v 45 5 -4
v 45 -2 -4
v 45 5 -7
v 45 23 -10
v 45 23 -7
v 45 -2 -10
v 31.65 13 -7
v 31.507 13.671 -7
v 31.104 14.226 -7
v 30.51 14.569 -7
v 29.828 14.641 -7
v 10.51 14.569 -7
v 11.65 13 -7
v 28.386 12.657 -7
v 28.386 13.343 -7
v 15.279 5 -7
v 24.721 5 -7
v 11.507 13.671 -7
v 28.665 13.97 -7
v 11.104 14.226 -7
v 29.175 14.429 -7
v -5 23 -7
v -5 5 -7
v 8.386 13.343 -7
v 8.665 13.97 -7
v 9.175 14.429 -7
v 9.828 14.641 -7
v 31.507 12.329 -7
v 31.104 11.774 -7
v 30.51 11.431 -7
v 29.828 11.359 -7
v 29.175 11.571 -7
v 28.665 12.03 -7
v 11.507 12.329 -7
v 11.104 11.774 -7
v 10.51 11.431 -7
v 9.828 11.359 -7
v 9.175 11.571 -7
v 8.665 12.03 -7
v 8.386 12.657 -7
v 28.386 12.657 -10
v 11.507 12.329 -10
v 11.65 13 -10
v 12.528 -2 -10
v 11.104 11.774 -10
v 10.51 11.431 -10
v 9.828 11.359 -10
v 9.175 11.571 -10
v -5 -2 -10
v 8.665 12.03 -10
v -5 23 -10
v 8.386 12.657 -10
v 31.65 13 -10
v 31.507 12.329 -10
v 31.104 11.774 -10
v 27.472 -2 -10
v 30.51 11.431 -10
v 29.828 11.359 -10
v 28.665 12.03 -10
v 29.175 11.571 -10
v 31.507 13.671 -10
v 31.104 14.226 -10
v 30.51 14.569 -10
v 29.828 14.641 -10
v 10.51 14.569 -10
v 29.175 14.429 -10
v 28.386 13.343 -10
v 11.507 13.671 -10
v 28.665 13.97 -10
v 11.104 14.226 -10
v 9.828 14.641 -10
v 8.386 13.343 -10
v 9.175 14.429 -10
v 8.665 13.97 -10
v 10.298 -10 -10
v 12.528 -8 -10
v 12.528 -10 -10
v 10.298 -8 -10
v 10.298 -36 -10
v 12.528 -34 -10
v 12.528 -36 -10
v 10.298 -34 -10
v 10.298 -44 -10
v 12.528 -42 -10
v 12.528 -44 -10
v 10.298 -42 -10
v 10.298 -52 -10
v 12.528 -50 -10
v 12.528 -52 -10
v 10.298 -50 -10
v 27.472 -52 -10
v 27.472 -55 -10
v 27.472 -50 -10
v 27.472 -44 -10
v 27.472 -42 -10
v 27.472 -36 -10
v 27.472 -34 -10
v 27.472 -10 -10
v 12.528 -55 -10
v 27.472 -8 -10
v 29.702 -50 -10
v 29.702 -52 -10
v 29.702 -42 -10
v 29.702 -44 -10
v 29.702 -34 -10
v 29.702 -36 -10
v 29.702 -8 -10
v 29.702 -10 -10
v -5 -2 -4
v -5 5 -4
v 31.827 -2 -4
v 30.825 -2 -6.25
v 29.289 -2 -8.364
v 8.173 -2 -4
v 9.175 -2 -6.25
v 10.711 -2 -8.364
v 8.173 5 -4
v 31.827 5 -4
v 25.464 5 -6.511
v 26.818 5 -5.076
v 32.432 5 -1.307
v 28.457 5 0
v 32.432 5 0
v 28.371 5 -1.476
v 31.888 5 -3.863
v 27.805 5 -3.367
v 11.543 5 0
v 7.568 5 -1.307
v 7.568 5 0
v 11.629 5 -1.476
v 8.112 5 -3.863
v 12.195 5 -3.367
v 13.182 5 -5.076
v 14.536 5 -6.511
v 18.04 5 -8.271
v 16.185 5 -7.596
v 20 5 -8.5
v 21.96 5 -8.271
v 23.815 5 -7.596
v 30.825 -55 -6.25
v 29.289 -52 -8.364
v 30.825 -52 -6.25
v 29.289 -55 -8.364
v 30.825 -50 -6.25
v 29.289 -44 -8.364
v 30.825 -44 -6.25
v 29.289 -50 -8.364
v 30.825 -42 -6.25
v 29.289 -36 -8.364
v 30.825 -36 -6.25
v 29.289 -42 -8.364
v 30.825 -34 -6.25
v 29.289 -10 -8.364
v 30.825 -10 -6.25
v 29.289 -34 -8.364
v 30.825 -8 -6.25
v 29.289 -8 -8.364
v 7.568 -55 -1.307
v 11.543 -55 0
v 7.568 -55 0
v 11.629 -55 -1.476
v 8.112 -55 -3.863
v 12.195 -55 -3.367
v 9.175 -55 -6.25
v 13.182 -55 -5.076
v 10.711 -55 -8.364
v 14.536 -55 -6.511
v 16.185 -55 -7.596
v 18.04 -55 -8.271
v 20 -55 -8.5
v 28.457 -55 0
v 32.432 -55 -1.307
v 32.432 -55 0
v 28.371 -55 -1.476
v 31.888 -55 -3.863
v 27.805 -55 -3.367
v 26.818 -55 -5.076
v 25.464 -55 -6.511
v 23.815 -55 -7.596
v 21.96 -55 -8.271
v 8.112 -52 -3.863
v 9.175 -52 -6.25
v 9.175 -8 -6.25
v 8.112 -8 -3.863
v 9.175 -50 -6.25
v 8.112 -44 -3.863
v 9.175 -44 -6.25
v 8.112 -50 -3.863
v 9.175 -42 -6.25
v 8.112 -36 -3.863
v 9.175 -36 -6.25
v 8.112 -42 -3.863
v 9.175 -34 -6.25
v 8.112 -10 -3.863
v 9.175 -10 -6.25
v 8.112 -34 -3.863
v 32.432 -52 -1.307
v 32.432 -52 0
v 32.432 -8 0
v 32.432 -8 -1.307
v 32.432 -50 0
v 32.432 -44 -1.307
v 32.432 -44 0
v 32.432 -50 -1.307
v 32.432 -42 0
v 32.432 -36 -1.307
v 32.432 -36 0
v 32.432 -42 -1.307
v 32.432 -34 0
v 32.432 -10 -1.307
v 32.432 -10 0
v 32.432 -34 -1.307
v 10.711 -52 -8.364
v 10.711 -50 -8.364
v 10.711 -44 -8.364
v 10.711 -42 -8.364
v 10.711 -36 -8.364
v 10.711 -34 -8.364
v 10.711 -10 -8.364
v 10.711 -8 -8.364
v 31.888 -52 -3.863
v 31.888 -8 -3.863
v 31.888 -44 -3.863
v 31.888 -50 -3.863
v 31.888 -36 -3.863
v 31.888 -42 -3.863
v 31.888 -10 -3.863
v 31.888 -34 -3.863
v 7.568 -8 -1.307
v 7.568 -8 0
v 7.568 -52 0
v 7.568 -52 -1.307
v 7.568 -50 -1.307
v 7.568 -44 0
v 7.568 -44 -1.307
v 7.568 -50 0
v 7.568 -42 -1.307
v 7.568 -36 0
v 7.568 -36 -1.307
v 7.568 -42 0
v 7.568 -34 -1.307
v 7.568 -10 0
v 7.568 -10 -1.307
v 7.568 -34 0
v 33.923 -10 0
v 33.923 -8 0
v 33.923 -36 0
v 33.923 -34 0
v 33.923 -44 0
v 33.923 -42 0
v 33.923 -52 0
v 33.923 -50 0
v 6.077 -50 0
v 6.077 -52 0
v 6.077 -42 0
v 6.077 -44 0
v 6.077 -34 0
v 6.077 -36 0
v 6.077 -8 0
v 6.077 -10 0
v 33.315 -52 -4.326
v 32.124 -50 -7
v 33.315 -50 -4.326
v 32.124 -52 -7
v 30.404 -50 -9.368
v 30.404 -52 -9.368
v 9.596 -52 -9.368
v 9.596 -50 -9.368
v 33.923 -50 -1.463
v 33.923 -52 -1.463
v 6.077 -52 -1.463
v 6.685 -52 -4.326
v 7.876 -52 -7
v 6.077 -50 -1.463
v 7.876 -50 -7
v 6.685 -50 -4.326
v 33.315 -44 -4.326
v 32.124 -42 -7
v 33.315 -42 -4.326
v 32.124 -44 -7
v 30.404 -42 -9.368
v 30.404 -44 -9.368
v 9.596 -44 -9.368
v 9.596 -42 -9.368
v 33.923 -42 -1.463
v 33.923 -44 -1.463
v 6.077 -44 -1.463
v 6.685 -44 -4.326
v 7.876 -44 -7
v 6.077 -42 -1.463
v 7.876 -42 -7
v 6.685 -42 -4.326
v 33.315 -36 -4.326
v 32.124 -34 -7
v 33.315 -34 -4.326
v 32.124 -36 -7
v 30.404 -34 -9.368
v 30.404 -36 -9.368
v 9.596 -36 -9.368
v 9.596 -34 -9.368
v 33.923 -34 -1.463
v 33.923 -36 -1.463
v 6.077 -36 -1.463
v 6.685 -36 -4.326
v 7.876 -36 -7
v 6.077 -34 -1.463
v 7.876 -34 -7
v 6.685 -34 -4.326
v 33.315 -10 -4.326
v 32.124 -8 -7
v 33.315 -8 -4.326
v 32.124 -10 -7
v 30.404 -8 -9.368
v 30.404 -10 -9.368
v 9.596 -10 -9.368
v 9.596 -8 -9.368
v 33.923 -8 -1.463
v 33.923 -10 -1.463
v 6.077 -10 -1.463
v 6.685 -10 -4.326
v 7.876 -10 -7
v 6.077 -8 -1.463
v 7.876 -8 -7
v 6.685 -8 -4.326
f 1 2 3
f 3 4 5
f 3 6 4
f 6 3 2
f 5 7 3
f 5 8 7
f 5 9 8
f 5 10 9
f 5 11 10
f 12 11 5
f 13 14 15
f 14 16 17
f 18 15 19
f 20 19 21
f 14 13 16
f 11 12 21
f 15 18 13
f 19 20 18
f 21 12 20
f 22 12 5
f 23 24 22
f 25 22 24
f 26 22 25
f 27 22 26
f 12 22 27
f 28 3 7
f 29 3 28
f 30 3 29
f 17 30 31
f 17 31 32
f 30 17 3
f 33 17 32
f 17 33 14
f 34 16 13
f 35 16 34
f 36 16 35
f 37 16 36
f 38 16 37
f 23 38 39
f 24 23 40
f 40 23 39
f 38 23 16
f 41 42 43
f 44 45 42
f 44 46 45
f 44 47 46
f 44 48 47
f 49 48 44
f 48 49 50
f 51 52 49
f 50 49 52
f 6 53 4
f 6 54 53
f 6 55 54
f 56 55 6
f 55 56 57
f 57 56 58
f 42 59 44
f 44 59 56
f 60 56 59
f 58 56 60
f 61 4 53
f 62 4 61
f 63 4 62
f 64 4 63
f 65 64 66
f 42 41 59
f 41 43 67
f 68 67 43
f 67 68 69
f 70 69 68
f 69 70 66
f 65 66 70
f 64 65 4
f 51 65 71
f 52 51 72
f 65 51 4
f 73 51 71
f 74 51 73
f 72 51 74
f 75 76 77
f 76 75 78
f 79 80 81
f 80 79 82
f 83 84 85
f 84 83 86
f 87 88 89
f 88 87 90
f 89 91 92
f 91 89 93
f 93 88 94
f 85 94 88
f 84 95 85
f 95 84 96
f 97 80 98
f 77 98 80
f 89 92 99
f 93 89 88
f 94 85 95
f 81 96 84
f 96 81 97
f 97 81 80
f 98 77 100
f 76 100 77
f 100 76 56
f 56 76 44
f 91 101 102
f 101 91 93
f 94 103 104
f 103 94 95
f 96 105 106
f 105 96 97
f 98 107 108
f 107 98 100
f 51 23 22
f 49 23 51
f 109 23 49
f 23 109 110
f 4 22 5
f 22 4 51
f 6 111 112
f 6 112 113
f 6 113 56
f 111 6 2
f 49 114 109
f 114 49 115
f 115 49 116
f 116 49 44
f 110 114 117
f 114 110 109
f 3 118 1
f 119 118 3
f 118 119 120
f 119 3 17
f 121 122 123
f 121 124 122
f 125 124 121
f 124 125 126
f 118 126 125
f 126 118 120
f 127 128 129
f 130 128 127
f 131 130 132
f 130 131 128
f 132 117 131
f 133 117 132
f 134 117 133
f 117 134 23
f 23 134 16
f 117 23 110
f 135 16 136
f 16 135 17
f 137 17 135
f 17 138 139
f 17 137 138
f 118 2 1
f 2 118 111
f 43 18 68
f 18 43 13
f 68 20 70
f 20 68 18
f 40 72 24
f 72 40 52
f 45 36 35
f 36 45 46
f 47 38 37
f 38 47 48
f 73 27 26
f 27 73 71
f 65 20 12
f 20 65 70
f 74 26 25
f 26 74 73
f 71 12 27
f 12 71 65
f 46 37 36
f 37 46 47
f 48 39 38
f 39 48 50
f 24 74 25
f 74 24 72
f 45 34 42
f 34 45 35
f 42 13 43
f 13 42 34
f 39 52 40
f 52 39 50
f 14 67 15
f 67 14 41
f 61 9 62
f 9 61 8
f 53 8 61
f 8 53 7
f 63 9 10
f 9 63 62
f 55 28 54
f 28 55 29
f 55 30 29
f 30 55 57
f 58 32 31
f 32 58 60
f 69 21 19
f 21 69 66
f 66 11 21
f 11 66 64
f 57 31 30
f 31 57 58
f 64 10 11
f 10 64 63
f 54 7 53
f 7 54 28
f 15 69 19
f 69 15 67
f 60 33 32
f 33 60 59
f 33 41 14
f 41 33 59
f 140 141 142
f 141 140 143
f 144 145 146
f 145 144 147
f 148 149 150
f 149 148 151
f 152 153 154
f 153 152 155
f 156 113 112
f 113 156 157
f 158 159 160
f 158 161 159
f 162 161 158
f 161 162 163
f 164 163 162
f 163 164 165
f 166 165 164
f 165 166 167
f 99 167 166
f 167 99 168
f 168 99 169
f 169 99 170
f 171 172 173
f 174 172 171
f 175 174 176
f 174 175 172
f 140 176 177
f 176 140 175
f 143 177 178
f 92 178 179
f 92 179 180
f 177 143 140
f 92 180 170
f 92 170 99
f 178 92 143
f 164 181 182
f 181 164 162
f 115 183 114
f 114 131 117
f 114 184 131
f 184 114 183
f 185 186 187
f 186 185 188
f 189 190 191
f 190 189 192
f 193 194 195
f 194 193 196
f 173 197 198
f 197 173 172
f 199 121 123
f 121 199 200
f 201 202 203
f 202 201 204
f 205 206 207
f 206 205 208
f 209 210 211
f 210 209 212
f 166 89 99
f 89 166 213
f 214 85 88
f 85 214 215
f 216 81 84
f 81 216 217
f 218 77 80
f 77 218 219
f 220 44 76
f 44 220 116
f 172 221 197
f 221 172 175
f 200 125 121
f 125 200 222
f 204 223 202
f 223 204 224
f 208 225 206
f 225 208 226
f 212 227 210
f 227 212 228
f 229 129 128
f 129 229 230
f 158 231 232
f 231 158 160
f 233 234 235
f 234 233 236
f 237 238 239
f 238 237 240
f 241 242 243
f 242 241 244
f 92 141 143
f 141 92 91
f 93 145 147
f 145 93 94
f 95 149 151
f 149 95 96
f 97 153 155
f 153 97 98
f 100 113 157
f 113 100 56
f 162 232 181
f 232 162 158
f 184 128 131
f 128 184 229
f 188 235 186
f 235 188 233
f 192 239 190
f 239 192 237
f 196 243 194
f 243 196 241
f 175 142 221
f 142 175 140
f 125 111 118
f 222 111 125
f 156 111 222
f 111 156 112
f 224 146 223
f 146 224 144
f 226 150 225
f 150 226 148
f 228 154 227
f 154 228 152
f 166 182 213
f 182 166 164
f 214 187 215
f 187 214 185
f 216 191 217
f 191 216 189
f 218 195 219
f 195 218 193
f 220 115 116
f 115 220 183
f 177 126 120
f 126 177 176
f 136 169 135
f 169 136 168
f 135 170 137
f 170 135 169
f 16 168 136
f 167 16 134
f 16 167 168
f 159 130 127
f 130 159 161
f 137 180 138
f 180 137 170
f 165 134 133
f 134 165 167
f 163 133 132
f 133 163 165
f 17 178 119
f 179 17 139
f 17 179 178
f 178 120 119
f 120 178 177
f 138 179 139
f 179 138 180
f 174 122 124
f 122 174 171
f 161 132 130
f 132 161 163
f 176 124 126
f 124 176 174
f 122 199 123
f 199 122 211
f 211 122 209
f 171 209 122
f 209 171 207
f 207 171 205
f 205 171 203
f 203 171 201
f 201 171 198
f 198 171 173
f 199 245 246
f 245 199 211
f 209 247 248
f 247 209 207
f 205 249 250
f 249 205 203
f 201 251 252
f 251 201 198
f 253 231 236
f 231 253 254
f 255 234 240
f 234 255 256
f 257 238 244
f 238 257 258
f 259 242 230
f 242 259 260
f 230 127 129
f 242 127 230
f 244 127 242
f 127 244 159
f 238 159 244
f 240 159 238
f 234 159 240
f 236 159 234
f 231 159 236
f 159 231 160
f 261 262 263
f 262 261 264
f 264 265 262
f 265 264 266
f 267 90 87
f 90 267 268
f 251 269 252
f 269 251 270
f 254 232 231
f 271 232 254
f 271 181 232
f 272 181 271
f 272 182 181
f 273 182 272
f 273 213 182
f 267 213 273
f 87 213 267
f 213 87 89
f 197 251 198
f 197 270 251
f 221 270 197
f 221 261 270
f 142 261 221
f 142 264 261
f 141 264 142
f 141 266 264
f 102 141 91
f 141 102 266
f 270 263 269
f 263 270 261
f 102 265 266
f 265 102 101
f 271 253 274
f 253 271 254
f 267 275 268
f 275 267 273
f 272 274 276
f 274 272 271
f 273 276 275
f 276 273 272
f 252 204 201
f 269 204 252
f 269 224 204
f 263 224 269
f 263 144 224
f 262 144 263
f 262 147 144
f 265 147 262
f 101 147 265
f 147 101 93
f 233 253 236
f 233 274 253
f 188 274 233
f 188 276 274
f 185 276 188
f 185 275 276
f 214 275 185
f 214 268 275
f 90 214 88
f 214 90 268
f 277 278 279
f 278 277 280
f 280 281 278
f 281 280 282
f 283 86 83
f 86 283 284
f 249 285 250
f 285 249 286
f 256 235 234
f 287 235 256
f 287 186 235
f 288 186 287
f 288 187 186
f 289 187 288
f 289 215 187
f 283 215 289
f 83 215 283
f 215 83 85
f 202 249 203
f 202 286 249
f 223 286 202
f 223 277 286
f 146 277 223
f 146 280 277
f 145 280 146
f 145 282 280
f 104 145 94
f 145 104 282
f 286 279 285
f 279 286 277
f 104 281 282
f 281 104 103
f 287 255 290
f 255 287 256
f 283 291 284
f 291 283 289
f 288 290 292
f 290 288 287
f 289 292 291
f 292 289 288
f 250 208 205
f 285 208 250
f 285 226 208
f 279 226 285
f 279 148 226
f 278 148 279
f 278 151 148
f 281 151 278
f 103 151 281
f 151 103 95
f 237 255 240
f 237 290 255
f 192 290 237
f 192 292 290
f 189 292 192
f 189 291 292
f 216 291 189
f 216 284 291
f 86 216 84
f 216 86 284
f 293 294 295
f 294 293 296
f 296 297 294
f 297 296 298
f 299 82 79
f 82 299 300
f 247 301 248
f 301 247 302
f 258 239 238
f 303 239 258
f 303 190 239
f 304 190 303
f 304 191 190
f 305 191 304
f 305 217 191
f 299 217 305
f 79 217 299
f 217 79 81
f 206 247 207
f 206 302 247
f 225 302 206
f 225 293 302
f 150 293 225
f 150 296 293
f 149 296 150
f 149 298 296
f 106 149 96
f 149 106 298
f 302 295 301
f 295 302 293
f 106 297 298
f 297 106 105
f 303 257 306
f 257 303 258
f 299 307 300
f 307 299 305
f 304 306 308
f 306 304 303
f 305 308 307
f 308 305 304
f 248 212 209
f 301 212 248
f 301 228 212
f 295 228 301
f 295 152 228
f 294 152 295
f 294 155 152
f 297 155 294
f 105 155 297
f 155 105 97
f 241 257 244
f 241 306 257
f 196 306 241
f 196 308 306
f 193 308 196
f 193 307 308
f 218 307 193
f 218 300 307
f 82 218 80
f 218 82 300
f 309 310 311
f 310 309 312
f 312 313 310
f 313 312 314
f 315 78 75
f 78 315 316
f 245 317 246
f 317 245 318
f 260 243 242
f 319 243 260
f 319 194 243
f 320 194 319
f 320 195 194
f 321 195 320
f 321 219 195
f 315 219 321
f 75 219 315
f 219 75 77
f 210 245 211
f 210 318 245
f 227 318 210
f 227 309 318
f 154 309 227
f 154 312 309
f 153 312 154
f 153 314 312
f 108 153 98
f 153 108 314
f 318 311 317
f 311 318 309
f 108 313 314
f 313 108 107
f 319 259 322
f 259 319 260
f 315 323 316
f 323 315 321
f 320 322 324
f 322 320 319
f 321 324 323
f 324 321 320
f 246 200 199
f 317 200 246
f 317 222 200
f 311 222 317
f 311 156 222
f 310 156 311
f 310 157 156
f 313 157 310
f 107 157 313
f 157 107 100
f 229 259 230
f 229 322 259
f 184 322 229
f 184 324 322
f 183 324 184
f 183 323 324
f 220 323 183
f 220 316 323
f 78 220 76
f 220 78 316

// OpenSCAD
// file: ../lib/common_wire_mount.scad
/* Common code for wiring mounts. See top_wire_mount.scad and 
 * bottom_wire_mount.scad for the model.
 * Copyright 2021 Alex Volkov <alex@flamy.ca>
 * License: Attribution-ShareAlike 4.0 International (CC BY-SA)
 * https://creativecommons.org/licenses/by-sa/4.0/
 *
 * Version 1.0 2021-04-10 Initial publication
 */


m3_bolt_d = 3.3;

module cable_mount(cable_len, out_d, in_d){
    rotate([0, 90, 0 ]){
    difference(){
        cylinder(d=out_d, h=cable_len);
        cylinder(d=in_d, h=cable_len);
        translate([-out_d/2, 0, cable_len/2])
            cube([out_d, out_d, cable_len], center=true);
        }
    }
}


module plate_mount_top(y_offset, thickness=2){
    difference(){
        translate([-5, 0, 0]){
            cube([50, 25, thickness]);
            cube([15, 7, thickness*2]);
            translate([35, 0, 0, ])
                cube([15, 7, thickness*2]);
        }
        translate([10, y_offset, 0])
            cylinder(d=m3_bolt_d, h=10, $fn=15);
        translate([30, y_offset, 0])
            cylinder(d=m3_bolt_d, h=10, $fn=15);
    }
    
}

module plate_mount(y_offset, thickness=2){
    difference(){
        translate([-5, 0, 0]) cube([50, 24, thickness]);
        translate([10, y_offset, 0])
            cylinder(d=m3_bolt_d, h=10, $fn=15);
        translate([30, y_offset, 0])
            cylinder(d=m3_bolt_d, h=10, $fn=15);
    }
    
}
// main file
/* Top wire mount for MKS GEN 1.4 for wiring heated bed and power cables
 * Copyright 2021 Alex Volkov <alex@flamy.ca>
 * License: Attribution-ShareAlike 4.0 International (CC BY-SA)
 * https://creativecommons.org/licenses/by-sa/4.0/
 *
 * Version 1.0 2021-04-10 Initial publication
 */

include <../lib/common_wire_mount.scad>

seventeen = 17;

module top_wire_holder(out_d, in_d){
    translate([0,-2,-10]){
        difference() {
            plate_mount_top(15, 3);
            translate([20, 7, 10]){
                rotate([90, 0, 0])
                cylinder(d=20, h=8);
            }
        }
    }
    difference(){
        union(){
            
            translate([20, -55, 0])
                rotate([0, 0, 90])
                    cable_mount(60, out_d, in_d);
            rotate([0,0,270]){
                translate([50, 20, 0])
                    cable_mount(2, out_d + 3, in_d);
                translate([42, 20, 0])
                    cable_mount(2, out_d + 3, in_d);
                translate([34, 20, 0])
                    cable_mount(2, out_d + 3, in_d);
                translate([8, 20, 0])
                    cable_mount(2, out_d + 3, in_d);
            }
        }
        translate([0,-75, -20])
            cube([40, 80, 10]);
    }
}

top_wire_holder(out_d=25, in_d=17);
